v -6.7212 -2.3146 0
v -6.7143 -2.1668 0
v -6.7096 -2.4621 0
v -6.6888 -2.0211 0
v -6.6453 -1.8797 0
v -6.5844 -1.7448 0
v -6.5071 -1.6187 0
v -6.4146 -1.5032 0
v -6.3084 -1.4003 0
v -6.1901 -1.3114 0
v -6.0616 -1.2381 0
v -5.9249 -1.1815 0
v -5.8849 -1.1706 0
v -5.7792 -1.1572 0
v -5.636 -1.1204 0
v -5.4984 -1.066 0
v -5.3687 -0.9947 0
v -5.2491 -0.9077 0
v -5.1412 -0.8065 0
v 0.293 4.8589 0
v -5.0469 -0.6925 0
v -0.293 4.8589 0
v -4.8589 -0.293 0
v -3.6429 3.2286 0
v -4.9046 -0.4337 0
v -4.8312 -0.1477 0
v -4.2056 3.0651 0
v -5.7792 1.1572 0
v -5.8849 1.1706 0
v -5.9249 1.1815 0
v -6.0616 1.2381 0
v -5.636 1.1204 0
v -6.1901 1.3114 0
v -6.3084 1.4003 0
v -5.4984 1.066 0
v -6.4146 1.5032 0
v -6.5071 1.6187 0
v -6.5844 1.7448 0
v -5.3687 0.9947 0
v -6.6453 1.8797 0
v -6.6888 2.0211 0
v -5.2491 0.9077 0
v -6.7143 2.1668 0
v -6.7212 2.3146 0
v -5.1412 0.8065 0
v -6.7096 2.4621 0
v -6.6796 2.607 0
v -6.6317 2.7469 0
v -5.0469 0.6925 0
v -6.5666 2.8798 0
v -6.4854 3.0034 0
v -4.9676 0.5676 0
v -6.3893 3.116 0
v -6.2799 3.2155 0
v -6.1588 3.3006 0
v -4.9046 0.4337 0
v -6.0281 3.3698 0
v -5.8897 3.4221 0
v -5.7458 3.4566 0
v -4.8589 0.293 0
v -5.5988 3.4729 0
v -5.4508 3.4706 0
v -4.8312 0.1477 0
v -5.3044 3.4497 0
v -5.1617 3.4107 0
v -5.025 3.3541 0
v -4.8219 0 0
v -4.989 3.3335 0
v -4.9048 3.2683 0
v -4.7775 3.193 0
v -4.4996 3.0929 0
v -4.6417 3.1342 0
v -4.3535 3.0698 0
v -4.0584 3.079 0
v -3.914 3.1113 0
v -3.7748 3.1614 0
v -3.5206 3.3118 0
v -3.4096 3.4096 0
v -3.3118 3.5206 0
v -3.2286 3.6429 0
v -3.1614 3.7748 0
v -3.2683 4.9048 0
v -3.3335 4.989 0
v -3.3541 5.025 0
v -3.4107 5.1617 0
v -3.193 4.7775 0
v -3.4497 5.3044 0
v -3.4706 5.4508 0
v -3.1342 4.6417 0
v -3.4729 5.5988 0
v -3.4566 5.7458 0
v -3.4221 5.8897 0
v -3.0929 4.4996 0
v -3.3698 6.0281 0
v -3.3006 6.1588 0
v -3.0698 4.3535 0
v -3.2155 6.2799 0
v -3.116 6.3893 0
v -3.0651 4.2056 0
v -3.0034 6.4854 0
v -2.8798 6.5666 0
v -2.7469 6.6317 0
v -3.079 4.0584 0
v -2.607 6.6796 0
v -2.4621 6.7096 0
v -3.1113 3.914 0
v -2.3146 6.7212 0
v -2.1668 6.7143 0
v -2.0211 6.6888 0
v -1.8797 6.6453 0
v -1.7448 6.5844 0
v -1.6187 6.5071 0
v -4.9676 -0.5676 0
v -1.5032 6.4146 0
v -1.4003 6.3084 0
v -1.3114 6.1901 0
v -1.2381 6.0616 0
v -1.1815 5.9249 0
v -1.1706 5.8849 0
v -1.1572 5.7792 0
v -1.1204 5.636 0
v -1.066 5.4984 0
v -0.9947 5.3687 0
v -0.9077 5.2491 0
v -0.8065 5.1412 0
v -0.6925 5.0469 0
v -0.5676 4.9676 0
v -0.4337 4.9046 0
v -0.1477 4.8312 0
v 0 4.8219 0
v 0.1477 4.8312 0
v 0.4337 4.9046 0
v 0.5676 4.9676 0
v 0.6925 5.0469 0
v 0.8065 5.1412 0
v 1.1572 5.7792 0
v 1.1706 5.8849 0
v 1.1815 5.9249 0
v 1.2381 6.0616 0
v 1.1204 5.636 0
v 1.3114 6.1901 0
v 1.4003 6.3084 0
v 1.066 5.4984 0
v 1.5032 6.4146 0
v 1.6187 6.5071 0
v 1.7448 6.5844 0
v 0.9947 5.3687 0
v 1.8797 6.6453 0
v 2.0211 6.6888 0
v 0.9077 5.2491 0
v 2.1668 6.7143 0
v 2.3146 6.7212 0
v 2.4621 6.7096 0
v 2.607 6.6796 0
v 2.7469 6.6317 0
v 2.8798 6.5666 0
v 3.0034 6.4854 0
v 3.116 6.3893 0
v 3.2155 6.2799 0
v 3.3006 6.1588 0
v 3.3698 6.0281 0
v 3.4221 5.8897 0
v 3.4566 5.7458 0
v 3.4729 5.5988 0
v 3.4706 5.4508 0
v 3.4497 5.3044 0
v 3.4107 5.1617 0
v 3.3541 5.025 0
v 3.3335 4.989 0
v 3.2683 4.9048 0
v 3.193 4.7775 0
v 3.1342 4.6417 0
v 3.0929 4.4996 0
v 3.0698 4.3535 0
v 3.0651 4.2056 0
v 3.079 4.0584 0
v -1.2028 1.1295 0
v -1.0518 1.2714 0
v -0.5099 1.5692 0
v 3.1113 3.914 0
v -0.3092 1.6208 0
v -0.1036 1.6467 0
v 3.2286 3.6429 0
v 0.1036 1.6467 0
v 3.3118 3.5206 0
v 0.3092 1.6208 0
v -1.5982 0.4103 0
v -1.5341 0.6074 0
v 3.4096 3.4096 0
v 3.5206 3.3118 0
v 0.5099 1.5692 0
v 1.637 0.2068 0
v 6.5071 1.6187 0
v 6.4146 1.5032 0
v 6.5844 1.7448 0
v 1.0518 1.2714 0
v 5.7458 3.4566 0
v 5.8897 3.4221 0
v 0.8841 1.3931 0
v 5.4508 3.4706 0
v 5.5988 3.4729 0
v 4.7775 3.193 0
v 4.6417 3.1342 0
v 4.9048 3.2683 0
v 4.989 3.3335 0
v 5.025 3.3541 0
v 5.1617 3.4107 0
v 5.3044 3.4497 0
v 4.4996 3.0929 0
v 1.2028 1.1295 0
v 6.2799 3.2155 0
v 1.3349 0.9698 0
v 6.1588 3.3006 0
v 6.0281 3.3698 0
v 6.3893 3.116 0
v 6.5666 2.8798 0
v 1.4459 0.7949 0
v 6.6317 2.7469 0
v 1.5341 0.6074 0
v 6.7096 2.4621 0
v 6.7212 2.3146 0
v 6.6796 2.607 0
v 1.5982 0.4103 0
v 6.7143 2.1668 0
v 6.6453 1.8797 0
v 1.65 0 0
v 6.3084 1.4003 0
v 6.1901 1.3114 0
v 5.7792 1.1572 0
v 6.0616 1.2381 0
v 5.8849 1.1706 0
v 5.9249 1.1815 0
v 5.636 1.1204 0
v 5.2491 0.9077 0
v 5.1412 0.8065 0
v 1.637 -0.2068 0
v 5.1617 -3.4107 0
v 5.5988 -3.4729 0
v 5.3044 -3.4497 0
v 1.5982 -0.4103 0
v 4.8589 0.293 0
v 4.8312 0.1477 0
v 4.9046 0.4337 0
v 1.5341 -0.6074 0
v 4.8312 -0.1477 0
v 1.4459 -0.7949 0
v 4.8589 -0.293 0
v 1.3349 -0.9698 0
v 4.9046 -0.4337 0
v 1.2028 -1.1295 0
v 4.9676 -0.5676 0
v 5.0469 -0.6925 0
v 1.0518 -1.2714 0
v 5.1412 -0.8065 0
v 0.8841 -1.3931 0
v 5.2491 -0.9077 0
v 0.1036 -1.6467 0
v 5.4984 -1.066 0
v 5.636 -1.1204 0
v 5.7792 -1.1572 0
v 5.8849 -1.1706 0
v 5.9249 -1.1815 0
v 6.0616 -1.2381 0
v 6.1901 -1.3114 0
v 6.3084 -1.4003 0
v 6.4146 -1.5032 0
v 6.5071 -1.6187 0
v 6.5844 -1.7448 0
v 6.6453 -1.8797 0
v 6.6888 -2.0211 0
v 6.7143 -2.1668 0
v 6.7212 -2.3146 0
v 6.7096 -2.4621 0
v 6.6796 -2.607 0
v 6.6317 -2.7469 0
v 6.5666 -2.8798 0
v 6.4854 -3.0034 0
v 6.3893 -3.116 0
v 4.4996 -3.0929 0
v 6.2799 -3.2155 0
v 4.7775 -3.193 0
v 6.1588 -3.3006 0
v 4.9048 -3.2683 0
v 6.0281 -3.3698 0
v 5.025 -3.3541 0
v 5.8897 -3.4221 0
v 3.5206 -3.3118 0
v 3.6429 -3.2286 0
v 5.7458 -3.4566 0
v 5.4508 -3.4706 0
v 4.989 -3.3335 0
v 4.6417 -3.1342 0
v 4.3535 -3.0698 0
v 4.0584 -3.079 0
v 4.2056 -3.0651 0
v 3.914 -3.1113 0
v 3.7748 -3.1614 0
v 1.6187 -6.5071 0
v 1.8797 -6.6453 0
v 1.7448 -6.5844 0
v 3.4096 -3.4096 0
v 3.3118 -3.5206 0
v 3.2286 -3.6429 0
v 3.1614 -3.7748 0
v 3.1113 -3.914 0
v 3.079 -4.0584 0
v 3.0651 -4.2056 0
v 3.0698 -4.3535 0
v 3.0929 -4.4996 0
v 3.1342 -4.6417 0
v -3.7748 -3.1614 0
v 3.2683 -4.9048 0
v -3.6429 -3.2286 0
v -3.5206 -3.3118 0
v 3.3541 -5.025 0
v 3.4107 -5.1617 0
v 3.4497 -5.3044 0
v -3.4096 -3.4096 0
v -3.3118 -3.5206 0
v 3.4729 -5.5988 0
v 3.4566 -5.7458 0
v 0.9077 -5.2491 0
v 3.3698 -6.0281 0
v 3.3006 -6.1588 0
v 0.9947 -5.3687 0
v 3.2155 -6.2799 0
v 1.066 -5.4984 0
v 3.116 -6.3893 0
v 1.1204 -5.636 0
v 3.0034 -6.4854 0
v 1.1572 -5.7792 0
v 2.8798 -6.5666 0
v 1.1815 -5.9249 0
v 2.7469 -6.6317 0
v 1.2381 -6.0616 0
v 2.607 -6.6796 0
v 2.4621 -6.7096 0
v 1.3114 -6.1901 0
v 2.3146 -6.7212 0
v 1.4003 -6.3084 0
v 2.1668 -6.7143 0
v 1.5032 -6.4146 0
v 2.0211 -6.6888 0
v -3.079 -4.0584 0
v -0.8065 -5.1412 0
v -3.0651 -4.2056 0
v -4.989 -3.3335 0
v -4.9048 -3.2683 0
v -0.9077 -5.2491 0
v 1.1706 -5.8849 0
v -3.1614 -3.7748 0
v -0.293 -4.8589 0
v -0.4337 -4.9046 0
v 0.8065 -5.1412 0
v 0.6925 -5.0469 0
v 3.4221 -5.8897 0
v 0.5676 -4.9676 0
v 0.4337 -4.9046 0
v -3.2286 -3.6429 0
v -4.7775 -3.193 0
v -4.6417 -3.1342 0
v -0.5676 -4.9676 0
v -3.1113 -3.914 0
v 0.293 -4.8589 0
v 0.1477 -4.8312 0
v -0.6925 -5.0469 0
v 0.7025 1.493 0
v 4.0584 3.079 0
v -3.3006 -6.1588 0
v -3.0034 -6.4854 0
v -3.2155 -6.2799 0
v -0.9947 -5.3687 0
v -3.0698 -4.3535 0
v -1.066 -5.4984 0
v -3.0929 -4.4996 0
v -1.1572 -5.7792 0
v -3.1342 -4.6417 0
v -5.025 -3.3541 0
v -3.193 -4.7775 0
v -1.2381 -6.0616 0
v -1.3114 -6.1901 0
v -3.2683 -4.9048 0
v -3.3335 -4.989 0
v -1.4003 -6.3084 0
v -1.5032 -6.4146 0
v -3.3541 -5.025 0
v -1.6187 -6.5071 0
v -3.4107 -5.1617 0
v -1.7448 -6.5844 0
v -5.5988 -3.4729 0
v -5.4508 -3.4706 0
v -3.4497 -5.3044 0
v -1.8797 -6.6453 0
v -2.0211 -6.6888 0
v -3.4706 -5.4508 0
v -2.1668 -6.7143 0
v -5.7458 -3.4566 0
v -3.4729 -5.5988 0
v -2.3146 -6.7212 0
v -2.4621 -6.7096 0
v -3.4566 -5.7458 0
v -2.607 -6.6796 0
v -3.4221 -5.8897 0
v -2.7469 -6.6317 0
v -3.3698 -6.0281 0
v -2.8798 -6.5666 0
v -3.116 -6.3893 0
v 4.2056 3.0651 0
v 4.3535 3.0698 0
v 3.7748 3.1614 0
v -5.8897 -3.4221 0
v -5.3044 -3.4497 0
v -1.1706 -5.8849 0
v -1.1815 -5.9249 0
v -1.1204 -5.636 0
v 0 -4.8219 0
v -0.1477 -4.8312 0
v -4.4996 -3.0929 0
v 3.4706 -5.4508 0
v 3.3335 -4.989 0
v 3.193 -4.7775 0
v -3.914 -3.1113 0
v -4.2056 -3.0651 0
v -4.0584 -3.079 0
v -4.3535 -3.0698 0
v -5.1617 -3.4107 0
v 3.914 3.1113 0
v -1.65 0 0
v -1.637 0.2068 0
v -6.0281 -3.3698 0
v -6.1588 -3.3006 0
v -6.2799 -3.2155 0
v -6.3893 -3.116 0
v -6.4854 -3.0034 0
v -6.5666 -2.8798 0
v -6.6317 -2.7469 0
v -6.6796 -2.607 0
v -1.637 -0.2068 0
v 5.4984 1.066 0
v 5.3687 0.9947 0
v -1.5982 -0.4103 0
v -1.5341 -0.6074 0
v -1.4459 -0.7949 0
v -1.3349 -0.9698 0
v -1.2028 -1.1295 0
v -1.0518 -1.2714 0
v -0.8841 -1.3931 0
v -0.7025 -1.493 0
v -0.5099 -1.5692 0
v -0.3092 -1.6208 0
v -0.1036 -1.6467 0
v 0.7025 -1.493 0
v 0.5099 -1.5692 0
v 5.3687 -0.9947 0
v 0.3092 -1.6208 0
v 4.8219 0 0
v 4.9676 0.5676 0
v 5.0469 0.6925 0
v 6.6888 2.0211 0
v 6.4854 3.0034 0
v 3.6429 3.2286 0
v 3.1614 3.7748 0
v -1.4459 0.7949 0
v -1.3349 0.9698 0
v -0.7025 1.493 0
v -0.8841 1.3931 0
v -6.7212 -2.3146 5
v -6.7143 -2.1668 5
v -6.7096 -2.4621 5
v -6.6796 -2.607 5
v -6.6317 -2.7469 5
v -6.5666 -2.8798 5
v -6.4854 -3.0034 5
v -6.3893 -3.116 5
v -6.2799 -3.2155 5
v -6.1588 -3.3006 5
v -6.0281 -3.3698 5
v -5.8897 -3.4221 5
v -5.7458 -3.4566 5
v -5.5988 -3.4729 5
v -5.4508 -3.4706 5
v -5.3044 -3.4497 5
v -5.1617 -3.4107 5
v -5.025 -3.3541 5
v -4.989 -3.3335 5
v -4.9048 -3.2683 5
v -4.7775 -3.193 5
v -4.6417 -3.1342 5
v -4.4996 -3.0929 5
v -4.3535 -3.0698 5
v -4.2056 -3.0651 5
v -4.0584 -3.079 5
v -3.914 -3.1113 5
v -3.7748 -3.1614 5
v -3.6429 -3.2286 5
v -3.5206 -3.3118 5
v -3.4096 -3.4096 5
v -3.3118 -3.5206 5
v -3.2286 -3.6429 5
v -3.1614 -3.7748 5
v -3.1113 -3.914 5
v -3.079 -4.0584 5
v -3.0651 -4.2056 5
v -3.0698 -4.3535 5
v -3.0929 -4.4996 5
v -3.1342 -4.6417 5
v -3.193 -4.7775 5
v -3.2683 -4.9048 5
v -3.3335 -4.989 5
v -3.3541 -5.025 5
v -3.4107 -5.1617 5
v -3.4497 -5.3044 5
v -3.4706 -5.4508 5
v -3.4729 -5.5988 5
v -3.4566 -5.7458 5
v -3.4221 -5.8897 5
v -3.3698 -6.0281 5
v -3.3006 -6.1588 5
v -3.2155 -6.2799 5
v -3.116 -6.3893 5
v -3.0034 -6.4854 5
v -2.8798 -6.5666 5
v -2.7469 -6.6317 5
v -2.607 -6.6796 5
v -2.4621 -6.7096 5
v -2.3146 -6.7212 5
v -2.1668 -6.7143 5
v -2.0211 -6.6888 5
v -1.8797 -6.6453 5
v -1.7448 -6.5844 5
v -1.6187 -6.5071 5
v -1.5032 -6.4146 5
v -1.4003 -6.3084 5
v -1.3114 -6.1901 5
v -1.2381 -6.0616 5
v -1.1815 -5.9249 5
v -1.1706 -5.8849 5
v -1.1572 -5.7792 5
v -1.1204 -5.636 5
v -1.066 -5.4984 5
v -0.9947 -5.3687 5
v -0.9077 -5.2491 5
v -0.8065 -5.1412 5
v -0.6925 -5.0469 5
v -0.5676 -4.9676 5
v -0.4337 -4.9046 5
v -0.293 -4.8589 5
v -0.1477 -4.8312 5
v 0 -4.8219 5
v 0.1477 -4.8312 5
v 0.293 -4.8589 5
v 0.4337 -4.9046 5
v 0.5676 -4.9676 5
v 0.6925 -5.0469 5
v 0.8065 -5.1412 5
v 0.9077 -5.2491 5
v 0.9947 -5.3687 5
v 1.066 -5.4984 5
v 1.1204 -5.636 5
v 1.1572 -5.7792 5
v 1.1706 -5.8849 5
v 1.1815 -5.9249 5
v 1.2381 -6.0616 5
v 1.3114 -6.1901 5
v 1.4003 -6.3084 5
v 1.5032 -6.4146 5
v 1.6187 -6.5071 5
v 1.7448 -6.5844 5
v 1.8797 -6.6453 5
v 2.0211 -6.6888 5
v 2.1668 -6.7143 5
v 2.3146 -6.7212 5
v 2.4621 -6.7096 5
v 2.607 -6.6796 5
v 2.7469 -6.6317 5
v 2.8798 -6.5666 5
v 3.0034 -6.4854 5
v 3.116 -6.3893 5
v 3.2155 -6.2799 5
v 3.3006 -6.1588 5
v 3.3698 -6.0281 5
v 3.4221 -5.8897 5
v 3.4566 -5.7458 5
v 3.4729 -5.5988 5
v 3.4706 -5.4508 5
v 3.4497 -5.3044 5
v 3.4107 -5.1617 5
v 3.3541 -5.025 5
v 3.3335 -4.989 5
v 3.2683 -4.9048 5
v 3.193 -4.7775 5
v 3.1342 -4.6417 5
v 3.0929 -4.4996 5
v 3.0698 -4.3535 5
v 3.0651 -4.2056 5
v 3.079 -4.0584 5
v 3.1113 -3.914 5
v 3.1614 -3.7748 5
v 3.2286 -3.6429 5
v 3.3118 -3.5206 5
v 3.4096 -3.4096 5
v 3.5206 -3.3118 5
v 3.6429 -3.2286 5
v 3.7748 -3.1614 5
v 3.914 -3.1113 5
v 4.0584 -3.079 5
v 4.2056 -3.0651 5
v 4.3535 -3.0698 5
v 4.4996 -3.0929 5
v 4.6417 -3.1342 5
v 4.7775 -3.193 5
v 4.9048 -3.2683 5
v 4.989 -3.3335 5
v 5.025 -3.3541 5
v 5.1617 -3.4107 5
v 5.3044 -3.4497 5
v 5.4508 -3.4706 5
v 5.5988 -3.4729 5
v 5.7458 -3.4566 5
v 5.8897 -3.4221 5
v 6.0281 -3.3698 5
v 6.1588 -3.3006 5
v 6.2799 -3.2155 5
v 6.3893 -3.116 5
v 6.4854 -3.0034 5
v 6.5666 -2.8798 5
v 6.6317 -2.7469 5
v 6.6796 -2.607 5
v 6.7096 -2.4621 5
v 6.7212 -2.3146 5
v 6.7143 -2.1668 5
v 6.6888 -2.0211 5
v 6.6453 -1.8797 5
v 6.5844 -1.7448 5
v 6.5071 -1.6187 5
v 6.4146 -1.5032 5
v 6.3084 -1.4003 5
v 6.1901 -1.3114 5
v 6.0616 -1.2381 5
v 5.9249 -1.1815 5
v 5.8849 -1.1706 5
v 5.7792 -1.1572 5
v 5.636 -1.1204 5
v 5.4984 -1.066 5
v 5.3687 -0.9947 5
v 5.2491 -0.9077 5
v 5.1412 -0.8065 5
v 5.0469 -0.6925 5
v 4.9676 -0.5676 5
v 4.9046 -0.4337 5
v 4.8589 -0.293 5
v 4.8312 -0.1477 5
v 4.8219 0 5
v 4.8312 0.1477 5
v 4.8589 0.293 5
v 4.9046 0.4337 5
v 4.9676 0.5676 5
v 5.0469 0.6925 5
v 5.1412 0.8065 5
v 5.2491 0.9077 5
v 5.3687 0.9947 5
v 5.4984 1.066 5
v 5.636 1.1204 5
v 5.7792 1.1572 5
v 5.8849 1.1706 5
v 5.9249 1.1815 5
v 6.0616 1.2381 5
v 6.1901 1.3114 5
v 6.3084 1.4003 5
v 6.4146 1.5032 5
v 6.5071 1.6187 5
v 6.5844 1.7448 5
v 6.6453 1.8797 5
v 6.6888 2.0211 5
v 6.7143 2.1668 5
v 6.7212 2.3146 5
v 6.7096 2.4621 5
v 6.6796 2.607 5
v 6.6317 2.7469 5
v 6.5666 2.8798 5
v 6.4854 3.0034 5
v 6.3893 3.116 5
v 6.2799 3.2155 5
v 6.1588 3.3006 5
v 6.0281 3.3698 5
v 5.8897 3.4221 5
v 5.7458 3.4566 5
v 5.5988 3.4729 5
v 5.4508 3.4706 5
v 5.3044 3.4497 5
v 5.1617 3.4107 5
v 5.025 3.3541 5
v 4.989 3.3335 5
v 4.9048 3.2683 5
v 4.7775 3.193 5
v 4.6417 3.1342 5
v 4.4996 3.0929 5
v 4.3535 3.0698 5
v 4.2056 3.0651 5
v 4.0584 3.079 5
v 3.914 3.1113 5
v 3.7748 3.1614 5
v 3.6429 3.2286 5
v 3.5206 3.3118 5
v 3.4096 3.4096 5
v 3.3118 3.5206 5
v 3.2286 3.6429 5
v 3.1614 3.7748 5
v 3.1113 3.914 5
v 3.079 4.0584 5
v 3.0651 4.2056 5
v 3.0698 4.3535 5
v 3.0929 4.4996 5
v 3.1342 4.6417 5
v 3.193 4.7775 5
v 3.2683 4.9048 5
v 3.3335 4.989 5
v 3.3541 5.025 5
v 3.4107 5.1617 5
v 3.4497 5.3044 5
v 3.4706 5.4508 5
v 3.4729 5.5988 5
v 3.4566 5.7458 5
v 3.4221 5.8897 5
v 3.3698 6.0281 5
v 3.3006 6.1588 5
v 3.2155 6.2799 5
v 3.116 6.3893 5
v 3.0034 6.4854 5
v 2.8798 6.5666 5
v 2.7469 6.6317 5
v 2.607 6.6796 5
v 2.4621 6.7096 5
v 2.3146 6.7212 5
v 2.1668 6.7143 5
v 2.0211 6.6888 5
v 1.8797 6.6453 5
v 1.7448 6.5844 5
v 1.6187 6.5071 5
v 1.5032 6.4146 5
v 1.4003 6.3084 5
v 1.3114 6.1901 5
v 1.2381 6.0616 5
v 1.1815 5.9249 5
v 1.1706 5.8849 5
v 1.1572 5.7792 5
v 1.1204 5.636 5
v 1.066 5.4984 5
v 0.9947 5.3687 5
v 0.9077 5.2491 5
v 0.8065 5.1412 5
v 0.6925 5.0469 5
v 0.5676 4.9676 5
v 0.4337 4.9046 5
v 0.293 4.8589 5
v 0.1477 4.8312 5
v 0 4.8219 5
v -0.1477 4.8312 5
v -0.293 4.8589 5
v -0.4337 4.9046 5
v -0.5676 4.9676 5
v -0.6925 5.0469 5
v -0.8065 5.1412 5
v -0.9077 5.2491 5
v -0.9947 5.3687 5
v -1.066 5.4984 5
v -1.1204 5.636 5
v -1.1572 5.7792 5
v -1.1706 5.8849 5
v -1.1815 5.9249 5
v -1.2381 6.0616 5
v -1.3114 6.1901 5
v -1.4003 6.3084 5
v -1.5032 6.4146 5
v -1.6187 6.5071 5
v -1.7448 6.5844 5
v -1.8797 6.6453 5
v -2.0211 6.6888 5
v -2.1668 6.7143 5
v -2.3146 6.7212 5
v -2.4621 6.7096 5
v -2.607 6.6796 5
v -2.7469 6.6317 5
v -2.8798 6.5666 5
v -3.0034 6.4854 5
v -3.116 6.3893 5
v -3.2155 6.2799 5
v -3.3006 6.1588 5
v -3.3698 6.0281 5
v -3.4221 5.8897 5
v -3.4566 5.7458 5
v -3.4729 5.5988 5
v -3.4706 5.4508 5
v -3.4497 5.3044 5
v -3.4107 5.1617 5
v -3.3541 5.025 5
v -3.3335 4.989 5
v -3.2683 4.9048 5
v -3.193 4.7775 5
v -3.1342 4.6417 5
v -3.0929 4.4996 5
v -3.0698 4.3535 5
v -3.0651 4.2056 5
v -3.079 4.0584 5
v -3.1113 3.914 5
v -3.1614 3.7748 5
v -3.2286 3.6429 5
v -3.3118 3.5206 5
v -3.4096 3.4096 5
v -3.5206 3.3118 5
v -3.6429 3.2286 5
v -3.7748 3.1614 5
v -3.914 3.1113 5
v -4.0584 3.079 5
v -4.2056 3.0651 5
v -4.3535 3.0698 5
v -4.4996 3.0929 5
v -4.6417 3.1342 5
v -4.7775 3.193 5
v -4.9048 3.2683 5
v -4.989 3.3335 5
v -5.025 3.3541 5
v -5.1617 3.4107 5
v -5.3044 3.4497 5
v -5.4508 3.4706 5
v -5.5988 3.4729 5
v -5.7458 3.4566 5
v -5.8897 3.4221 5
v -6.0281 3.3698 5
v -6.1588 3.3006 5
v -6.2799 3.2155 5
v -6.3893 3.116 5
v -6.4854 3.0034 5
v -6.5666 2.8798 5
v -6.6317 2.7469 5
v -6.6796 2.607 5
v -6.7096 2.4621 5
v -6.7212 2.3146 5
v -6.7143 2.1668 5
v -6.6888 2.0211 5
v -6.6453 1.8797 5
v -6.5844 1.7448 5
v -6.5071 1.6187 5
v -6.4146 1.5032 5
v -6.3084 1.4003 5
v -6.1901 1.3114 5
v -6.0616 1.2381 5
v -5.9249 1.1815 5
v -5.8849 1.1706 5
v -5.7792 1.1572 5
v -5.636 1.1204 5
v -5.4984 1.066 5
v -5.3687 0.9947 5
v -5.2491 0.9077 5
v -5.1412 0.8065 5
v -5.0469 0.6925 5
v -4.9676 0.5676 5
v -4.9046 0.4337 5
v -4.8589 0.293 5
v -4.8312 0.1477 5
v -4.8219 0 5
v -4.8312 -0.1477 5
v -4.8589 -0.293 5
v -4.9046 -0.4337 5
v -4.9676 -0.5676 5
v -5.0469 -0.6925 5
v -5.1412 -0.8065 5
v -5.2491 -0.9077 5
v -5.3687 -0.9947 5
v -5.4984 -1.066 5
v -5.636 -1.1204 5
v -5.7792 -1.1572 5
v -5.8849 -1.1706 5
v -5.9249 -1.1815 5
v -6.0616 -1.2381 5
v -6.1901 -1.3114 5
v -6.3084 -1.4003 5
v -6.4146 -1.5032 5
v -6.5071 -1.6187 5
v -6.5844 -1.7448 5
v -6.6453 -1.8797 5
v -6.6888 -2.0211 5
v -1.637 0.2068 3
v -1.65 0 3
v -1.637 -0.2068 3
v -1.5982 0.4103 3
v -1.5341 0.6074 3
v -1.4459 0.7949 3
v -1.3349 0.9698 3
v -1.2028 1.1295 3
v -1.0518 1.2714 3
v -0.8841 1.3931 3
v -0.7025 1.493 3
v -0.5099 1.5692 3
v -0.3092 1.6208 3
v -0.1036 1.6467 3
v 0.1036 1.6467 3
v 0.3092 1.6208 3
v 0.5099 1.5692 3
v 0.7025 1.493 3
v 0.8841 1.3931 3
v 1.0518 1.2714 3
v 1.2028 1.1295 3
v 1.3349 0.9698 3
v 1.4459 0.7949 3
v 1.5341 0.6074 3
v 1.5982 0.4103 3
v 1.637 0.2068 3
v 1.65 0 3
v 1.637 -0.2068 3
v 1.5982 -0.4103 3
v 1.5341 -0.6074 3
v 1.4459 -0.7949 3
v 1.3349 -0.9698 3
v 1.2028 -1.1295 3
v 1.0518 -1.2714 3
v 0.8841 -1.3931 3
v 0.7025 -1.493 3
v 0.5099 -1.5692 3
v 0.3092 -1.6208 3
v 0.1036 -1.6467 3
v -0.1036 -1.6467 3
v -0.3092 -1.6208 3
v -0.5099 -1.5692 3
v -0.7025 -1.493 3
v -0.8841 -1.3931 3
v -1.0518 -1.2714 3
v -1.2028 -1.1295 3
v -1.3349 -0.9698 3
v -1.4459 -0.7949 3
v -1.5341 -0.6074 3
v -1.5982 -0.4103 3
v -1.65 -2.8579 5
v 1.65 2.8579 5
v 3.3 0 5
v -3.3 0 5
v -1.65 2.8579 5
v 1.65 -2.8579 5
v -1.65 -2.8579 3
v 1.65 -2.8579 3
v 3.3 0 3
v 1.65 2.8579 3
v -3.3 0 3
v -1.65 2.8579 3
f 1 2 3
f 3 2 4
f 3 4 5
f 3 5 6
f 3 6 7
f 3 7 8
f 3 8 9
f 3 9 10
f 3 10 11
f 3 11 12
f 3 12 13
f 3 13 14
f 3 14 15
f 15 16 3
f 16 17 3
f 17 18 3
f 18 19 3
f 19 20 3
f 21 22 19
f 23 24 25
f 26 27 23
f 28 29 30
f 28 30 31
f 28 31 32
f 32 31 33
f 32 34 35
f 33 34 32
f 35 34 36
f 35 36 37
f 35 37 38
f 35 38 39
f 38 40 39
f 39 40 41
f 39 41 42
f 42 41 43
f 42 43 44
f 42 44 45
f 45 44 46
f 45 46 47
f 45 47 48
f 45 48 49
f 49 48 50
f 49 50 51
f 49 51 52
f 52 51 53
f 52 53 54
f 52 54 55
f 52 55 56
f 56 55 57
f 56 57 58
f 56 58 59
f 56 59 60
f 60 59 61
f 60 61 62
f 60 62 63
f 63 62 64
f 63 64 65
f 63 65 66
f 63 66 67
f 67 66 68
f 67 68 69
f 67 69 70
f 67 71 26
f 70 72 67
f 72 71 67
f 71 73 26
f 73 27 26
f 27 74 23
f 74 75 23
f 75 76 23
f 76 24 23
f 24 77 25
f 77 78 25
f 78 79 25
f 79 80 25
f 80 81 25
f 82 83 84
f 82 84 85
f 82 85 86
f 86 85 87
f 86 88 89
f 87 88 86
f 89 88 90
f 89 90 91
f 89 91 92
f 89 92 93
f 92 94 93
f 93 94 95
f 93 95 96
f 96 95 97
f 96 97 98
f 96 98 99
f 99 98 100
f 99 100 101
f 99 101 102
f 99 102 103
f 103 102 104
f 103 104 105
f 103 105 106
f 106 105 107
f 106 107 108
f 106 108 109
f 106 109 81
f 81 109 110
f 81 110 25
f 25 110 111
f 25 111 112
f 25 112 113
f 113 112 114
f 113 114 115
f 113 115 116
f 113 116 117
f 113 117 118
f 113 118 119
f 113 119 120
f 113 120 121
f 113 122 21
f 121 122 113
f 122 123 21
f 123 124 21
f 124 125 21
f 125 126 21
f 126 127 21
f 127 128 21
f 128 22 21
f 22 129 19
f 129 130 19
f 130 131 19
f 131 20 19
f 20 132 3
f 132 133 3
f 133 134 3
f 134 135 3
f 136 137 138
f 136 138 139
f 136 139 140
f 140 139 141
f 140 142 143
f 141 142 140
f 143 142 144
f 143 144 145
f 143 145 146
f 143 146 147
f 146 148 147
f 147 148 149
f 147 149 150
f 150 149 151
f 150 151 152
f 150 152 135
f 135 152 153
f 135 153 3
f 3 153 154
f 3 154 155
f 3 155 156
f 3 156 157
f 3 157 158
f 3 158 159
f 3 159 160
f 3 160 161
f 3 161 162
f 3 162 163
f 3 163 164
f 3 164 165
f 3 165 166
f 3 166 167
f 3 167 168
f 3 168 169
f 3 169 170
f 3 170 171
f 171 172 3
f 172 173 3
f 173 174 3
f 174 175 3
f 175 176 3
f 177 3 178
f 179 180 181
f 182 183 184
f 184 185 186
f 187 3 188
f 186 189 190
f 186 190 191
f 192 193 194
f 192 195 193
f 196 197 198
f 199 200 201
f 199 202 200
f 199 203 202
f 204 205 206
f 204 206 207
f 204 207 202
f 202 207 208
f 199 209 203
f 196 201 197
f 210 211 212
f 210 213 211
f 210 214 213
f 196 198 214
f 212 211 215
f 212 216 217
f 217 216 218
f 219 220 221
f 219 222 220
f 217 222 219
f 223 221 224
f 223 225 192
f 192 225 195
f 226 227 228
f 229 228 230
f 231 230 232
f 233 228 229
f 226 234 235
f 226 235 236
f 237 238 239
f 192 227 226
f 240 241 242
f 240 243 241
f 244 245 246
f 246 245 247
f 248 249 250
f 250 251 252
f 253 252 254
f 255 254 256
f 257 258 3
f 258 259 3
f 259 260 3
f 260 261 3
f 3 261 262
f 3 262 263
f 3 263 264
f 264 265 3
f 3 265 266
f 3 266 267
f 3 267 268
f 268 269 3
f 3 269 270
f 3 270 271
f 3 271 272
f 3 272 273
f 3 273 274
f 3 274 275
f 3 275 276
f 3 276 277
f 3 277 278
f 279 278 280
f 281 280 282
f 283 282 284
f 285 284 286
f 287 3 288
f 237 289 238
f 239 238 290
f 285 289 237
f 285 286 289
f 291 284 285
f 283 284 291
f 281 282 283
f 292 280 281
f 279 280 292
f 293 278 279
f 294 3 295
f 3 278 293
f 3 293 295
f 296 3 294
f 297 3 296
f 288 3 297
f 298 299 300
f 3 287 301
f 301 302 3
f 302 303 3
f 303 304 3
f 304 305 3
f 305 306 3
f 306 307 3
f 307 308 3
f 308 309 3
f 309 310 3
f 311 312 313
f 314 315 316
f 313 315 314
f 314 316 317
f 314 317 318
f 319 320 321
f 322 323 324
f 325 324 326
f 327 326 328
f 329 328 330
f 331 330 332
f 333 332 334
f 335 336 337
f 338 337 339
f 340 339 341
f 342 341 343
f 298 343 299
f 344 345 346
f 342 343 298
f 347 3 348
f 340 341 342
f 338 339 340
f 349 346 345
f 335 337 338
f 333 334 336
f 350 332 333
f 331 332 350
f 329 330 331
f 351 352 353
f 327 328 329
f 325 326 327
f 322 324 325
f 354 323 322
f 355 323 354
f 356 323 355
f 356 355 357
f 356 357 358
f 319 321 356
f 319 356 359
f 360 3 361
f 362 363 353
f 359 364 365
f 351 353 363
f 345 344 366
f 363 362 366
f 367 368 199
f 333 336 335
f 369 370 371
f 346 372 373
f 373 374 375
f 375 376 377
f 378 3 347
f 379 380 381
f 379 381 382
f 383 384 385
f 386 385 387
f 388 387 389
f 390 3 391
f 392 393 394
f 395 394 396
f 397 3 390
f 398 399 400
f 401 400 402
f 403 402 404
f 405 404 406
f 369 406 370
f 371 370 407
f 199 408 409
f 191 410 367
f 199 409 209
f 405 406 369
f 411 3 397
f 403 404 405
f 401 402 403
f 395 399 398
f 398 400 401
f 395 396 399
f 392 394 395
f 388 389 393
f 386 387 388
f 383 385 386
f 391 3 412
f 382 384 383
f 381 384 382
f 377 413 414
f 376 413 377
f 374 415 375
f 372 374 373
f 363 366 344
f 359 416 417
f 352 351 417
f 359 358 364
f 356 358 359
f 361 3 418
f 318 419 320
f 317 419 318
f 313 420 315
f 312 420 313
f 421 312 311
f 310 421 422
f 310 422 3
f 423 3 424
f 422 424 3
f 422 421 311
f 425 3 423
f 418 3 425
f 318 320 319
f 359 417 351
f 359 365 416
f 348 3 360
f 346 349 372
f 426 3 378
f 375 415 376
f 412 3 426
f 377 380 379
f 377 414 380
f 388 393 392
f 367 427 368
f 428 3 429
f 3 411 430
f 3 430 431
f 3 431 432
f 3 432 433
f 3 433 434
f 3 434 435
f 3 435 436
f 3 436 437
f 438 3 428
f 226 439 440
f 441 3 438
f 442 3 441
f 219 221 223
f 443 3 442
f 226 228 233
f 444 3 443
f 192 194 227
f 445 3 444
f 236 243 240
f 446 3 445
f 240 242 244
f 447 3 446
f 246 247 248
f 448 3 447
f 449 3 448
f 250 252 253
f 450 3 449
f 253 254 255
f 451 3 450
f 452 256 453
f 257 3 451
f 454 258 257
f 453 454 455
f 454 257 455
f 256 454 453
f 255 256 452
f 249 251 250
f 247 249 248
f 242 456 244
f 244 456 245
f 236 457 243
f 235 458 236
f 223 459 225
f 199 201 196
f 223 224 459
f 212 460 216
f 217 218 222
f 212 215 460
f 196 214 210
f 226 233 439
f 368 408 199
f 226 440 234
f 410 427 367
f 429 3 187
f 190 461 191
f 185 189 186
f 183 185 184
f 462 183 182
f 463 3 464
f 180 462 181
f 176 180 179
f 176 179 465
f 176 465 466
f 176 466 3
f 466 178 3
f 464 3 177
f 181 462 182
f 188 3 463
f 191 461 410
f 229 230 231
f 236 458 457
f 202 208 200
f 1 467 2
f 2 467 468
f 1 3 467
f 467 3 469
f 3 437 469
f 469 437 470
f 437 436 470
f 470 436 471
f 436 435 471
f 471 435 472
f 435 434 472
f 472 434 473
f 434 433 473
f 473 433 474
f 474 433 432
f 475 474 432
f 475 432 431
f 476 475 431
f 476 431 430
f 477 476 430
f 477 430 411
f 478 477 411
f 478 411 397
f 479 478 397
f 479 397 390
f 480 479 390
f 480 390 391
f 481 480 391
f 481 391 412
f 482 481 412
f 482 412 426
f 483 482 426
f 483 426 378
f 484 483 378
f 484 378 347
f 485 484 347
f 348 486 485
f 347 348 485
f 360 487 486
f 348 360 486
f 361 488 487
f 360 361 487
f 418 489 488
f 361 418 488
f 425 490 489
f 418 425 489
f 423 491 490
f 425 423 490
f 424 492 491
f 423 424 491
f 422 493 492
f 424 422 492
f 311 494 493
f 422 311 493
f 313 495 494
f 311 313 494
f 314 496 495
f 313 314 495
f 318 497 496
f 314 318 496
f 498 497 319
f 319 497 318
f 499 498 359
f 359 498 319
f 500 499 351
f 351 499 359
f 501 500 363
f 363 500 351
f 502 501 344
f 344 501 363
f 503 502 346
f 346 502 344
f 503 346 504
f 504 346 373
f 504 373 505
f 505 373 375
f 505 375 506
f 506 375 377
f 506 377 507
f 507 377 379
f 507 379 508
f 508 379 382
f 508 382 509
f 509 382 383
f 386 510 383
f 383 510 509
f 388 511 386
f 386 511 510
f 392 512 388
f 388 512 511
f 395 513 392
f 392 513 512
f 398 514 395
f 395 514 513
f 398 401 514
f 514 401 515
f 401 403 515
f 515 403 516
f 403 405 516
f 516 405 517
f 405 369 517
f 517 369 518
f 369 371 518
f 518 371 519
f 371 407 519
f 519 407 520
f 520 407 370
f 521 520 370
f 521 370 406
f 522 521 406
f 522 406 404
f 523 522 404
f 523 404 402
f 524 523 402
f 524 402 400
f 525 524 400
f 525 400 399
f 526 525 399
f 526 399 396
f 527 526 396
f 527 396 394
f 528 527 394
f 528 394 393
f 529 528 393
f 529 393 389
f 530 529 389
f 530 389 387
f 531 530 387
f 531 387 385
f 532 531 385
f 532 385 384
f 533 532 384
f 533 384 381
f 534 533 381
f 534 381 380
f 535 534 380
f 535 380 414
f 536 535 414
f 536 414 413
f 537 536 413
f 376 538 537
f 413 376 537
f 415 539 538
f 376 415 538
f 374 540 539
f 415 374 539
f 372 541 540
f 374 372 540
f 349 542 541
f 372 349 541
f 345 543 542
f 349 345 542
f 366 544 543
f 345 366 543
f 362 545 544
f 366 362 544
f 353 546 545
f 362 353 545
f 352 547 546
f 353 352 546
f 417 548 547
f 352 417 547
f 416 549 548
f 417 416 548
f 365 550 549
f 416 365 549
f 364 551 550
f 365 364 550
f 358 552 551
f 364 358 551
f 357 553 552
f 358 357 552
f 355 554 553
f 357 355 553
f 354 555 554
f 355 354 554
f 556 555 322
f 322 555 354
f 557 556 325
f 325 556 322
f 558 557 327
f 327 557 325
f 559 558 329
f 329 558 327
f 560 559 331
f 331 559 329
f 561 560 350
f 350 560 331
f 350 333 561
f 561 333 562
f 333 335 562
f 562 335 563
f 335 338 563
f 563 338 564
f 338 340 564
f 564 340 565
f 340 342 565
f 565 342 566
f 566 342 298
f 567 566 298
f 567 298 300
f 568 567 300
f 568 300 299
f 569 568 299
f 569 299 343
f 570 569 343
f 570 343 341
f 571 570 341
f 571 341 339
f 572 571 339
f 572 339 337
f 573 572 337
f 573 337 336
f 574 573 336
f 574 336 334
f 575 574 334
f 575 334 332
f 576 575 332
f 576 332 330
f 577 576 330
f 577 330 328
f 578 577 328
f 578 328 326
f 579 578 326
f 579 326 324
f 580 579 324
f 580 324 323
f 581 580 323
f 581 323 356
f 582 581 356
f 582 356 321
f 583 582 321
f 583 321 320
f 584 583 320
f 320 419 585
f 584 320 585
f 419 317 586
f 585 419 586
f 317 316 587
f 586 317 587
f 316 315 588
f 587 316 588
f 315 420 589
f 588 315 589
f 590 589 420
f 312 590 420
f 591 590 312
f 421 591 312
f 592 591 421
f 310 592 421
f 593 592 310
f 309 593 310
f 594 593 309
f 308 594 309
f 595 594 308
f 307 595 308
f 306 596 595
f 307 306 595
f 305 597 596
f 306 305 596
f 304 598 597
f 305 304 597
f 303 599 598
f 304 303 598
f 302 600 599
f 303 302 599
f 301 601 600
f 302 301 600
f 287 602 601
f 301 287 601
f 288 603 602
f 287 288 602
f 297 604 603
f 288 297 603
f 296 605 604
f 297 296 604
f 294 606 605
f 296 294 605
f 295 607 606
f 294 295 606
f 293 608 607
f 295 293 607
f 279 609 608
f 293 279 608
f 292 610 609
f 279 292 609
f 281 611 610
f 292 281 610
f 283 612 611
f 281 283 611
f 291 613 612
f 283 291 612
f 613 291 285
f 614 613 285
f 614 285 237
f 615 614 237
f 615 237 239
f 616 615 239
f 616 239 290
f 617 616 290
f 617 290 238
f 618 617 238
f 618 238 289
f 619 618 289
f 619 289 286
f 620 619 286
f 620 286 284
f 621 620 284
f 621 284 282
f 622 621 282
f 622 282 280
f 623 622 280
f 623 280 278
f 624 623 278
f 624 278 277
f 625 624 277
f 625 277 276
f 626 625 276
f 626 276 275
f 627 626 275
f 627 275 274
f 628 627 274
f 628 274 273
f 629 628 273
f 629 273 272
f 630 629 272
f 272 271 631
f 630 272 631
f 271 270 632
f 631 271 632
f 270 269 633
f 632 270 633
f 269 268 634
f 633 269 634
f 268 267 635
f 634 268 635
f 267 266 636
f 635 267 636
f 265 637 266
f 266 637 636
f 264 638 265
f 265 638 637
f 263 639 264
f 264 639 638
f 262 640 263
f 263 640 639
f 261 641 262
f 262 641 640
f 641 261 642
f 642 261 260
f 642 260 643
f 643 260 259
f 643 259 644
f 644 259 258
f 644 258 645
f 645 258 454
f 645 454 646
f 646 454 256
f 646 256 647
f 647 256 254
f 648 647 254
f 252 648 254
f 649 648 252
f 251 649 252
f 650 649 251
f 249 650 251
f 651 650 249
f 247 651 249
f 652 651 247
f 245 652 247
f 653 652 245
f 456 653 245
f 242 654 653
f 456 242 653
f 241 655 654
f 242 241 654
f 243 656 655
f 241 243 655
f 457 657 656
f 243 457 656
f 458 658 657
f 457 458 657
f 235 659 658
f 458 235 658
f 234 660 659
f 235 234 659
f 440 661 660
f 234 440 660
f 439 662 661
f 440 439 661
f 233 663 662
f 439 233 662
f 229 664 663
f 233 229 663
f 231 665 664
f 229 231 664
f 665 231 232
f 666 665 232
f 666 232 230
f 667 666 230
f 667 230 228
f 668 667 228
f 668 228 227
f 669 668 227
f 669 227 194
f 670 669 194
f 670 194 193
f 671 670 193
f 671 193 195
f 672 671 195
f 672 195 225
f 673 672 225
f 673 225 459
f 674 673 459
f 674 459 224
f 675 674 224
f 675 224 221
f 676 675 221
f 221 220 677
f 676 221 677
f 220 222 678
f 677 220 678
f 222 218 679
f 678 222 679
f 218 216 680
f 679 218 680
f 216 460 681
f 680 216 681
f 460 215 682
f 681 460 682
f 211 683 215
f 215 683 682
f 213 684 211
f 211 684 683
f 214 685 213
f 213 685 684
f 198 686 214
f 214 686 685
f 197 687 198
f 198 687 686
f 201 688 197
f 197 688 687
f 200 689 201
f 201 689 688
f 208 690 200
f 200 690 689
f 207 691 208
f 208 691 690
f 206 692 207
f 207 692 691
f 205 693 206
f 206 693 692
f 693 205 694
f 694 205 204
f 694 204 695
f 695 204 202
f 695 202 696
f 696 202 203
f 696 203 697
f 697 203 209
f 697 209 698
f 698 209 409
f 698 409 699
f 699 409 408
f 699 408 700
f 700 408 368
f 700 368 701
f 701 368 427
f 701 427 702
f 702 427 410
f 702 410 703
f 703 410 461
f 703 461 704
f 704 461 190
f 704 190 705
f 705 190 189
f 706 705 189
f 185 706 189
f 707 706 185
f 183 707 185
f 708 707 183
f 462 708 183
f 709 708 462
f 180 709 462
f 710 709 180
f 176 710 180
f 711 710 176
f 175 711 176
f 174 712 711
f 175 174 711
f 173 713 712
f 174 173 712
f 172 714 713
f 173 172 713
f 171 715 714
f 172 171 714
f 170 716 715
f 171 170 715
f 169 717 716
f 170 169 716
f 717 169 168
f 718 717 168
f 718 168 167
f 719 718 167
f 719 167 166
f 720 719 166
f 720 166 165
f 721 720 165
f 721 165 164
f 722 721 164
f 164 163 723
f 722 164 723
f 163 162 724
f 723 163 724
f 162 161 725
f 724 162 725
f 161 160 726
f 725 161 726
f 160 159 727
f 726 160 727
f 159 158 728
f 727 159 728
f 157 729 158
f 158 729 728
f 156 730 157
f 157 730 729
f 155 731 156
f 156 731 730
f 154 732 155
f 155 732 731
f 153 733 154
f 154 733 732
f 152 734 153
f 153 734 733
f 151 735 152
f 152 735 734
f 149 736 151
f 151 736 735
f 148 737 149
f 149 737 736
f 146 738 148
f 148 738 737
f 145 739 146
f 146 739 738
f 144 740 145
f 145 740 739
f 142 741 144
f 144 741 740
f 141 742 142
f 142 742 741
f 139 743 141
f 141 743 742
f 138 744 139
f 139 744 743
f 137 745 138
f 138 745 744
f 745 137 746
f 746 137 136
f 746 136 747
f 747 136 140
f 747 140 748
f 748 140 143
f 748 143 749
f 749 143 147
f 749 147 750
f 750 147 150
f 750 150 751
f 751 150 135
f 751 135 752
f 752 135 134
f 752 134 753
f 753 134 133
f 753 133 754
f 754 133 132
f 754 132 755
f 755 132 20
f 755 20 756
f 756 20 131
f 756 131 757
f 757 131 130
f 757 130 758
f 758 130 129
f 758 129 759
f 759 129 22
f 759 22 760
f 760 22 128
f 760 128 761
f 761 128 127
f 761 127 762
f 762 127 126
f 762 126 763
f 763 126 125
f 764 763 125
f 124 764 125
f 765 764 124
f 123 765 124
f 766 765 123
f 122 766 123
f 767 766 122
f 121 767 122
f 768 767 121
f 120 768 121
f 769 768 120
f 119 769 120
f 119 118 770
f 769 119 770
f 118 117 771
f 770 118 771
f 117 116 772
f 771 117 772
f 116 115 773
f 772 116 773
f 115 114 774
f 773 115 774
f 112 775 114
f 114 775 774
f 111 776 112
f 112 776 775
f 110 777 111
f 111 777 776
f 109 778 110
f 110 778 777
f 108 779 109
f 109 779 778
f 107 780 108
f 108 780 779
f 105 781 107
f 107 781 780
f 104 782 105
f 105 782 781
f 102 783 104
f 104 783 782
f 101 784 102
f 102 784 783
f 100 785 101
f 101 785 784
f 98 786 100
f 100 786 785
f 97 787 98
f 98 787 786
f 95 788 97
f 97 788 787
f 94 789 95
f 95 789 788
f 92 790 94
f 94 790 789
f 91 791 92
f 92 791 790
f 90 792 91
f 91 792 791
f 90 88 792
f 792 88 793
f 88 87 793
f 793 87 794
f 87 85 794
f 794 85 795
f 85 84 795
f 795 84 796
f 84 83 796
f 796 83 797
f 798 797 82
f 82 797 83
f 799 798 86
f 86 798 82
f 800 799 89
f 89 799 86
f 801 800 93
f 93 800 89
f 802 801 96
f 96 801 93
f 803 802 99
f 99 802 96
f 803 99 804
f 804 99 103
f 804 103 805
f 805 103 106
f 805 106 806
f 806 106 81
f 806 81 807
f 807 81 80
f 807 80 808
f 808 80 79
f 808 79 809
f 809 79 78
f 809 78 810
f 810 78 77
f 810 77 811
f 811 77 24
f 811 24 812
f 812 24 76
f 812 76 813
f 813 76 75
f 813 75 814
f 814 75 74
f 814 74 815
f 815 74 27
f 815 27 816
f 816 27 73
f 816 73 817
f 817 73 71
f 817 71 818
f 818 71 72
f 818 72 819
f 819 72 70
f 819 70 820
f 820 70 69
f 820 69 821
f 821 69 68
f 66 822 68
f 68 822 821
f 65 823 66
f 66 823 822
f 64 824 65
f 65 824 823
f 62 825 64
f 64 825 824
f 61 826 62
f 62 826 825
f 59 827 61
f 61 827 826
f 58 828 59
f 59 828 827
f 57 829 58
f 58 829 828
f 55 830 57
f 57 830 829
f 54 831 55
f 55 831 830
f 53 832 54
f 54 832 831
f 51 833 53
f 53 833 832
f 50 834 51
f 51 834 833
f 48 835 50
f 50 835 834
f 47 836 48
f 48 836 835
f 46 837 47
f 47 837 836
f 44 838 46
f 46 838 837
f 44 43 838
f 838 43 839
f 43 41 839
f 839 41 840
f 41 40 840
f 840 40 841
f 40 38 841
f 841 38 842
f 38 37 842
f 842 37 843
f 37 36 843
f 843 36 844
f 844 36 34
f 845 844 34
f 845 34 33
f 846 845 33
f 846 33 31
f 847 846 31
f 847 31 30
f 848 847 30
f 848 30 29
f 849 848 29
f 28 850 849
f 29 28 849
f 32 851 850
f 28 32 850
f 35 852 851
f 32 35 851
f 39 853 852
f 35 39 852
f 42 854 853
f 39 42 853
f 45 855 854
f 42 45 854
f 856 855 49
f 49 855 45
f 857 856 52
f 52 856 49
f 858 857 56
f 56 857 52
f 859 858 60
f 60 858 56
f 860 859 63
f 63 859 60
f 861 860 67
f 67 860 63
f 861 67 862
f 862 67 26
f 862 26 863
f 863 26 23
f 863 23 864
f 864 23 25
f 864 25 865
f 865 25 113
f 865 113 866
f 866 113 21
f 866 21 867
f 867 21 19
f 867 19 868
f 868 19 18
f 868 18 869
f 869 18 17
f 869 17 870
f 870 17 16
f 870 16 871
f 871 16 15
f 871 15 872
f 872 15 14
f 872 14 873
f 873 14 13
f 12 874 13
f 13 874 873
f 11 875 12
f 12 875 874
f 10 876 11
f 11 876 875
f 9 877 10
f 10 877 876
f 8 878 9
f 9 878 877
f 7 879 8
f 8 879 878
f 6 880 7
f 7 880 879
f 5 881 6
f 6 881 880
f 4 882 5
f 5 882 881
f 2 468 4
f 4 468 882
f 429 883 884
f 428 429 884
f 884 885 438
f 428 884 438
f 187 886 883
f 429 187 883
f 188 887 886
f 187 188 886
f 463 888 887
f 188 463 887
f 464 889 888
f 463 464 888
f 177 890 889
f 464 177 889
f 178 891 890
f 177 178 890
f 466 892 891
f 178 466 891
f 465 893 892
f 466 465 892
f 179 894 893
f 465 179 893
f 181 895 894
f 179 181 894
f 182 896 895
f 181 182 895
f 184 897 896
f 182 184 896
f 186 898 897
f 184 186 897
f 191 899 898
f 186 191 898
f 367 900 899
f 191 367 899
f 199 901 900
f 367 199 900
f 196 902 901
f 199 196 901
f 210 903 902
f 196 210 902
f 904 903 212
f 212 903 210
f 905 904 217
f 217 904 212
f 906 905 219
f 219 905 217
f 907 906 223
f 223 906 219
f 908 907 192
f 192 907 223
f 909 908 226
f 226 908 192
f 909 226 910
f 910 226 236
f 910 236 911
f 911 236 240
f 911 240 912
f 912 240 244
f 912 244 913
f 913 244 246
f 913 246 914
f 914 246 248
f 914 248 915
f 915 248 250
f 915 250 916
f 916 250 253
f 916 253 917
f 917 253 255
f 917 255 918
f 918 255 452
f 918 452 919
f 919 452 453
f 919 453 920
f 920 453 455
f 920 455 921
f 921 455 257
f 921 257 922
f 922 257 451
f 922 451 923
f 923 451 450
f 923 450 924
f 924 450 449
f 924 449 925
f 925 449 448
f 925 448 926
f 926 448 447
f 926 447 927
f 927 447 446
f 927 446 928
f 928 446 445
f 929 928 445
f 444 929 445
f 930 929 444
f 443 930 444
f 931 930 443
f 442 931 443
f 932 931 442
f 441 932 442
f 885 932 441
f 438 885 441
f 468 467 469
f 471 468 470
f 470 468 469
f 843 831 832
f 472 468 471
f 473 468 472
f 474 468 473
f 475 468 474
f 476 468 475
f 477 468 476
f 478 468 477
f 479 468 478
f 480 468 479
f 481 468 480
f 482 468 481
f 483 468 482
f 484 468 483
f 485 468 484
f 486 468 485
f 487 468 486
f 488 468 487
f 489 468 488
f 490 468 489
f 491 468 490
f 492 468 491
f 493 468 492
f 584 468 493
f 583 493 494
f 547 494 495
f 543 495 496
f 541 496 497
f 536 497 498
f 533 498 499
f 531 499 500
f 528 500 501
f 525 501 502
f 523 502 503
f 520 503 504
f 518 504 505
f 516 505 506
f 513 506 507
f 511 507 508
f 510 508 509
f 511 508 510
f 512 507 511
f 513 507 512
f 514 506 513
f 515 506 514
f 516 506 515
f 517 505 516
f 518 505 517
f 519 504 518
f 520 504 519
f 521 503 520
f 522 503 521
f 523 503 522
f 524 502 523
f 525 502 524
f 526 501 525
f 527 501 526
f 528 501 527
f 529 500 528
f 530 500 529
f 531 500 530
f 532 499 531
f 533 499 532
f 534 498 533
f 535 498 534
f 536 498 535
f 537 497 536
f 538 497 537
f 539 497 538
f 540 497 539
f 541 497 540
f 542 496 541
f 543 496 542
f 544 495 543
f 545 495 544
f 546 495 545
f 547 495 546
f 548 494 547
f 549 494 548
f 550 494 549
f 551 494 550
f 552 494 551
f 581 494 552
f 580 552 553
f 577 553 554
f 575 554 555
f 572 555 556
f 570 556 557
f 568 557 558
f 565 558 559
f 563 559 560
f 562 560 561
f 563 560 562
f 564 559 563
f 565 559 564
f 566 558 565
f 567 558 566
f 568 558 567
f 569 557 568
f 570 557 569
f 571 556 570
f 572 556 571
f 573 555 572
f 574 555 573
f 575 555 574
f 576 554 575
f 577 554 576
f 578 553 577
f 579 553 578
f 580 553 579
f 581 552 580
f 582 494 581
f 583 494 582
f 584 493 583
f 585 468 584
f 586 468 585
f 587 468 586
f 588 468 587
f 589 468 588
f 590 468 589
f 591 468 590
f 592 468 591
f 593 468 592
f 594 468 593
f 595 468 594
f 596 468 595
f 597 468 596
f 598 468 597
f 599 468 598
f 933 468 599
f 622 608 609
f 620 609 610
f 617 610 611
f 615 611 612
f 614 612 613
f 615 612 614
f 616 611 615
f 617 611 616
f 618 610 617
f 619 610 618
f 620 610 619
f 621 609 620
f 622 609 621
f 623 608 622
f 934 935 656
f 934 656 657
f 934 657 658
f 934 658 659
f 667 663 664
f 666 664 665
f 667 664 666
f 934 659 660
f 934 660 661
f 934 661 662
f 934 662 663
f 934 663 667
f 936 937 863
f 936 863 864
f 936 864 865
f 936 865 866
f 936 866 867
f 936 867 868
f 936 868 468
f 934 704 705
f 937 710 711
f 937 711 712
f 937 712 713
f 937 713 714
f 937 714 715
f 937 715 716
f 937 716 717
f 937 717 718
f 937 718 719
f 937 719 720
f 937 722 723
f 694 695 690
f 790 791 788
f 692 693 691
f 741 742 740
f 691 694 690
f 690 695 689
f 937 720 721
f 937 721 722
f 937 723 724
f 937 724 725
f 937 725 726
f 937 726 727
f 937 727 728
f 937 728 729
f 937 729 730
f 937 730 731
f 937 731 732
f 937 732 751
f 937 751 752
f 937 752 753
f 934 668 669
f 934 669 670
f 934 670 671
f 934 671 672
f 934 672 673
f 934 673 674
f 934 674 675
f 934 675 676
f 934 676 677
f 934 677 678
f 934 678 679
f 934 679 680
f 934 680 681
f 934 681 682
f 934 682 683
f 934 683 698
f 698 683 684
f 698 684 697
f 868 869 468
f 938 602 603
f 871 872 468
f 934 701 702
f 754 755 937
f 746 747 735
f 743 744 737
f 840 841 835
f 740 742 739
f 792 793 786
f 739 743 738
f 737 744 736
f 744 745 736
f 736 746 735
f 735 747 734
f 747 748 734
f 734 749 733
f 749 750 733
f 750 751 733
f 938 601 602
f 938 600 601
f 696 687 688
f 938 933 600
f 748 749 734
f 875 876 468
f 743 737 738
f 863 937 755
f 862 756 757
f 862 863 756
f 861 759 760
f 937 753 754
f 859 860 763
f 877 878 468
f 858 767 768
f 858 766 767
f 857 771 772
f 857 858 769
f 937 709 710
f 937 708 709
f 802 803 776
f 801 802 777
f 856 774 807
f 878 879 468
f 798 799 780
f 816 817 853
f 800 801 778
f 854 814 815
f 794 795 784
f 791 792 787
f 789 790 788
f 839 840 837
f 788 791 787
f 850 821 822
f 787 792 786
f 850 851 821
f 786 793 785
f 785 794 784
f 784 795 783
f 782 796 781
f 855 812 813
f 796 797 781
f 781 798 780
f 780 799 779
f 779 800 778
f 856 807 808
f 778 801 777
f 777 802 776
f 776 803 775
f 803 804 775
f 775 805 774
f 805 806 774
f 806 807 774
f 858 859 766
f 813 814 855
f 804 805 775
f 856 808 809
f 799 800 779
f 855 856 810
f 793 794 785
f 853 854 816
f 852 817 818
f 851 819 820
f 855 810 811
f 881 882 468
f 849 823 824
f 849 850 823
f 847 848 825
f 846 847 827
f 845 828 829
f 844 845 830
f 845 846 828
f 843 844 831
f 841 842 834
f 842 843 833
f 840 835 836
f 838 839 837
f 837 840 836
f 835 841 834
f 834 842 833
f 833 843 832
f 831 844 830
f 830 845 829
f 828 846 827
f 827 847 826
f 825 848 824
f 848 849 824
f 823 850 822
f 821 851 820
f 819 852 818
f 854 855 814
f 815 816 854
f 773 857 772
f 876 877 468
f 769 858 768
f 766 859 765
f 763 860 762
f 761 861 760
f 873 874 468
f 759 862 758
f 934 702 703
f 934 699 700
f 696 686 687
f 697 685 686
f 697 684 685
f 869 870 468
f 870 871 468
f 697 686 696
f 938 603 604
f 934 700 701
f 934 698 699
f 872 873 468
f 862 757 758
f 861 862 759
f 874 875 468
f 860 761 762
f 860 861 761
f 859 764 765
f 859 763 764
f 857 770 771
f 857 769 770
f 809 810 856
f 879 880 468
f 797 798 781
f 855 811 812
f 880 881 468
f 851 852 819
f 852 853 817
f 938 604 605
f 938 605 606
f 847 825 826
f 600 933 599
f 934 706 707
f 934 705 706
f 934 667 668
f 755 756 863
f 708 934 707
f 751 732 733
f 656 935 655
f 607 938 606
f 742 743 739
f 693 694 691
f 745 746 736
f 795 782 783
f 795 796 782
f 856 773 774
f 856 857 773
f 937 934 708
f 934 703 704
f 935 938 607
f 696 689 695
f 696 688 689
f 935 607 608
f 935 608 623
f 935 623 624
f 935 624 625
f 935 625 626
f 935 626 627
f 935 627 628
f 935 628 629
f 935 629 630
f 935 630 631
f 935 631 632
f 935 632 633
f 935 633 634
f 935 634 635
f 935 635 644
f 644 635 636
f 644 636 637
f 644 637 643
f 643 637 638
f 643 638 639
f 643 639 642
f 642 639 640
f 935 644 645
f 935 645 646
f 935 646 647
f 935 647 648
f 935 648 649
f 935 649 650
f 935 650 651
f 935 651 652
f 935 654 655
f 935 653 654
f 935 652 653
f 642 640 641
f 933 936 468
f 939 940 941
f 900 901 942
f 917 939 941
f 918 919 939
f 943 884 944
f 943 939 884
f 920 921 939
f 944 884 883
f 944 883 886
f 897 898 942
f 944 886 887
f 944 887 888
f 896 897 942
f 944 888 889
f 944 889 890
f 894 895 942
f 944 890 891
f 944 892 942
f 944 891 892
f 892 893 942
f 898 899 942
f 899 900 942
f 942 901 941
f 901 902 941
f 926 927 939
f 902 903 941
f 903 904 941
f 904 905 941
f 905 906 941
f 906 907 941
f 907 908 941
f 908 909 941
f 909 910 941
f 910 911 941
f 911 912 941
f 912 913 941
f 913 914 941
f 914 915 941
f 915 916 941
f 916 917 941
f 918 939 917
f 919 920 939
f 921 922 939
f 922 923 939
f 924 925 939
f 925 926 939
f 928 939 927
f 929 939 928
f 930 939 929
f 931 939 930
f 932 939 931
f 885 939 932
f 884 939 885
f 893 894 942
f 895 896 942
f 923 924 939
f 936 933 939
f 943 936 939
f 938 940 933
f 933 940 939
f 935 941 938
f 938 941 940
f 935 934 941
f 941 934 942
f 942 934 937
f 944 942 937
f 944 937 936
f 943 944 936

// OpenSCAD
$fn=50;

pi = 3.14159265359;

rs = 0.375;

module mod1() {
	difference () {
		union() {
			for ( i = [0 : 7] ) {
				rotate ([0,0,i*360/8+22.5]) translate ([6,0,0]) cylinder (r=pi*rs, h=5);
			}
			cylinder (r=6, h=5);
		}
		translate ([0,0,3]) cylinder (r=3.3, h=2, $fn=6);
		for ( i = [0 : 7] ) {
			rotate ([0,0,i*360/8]) translate ([6,0,0]) cylinder (r=pi*rs, h=10);
		}
		translate ([0,0,-1]) cylinder (r=1.65, h=12);
	}
}

mod1();
